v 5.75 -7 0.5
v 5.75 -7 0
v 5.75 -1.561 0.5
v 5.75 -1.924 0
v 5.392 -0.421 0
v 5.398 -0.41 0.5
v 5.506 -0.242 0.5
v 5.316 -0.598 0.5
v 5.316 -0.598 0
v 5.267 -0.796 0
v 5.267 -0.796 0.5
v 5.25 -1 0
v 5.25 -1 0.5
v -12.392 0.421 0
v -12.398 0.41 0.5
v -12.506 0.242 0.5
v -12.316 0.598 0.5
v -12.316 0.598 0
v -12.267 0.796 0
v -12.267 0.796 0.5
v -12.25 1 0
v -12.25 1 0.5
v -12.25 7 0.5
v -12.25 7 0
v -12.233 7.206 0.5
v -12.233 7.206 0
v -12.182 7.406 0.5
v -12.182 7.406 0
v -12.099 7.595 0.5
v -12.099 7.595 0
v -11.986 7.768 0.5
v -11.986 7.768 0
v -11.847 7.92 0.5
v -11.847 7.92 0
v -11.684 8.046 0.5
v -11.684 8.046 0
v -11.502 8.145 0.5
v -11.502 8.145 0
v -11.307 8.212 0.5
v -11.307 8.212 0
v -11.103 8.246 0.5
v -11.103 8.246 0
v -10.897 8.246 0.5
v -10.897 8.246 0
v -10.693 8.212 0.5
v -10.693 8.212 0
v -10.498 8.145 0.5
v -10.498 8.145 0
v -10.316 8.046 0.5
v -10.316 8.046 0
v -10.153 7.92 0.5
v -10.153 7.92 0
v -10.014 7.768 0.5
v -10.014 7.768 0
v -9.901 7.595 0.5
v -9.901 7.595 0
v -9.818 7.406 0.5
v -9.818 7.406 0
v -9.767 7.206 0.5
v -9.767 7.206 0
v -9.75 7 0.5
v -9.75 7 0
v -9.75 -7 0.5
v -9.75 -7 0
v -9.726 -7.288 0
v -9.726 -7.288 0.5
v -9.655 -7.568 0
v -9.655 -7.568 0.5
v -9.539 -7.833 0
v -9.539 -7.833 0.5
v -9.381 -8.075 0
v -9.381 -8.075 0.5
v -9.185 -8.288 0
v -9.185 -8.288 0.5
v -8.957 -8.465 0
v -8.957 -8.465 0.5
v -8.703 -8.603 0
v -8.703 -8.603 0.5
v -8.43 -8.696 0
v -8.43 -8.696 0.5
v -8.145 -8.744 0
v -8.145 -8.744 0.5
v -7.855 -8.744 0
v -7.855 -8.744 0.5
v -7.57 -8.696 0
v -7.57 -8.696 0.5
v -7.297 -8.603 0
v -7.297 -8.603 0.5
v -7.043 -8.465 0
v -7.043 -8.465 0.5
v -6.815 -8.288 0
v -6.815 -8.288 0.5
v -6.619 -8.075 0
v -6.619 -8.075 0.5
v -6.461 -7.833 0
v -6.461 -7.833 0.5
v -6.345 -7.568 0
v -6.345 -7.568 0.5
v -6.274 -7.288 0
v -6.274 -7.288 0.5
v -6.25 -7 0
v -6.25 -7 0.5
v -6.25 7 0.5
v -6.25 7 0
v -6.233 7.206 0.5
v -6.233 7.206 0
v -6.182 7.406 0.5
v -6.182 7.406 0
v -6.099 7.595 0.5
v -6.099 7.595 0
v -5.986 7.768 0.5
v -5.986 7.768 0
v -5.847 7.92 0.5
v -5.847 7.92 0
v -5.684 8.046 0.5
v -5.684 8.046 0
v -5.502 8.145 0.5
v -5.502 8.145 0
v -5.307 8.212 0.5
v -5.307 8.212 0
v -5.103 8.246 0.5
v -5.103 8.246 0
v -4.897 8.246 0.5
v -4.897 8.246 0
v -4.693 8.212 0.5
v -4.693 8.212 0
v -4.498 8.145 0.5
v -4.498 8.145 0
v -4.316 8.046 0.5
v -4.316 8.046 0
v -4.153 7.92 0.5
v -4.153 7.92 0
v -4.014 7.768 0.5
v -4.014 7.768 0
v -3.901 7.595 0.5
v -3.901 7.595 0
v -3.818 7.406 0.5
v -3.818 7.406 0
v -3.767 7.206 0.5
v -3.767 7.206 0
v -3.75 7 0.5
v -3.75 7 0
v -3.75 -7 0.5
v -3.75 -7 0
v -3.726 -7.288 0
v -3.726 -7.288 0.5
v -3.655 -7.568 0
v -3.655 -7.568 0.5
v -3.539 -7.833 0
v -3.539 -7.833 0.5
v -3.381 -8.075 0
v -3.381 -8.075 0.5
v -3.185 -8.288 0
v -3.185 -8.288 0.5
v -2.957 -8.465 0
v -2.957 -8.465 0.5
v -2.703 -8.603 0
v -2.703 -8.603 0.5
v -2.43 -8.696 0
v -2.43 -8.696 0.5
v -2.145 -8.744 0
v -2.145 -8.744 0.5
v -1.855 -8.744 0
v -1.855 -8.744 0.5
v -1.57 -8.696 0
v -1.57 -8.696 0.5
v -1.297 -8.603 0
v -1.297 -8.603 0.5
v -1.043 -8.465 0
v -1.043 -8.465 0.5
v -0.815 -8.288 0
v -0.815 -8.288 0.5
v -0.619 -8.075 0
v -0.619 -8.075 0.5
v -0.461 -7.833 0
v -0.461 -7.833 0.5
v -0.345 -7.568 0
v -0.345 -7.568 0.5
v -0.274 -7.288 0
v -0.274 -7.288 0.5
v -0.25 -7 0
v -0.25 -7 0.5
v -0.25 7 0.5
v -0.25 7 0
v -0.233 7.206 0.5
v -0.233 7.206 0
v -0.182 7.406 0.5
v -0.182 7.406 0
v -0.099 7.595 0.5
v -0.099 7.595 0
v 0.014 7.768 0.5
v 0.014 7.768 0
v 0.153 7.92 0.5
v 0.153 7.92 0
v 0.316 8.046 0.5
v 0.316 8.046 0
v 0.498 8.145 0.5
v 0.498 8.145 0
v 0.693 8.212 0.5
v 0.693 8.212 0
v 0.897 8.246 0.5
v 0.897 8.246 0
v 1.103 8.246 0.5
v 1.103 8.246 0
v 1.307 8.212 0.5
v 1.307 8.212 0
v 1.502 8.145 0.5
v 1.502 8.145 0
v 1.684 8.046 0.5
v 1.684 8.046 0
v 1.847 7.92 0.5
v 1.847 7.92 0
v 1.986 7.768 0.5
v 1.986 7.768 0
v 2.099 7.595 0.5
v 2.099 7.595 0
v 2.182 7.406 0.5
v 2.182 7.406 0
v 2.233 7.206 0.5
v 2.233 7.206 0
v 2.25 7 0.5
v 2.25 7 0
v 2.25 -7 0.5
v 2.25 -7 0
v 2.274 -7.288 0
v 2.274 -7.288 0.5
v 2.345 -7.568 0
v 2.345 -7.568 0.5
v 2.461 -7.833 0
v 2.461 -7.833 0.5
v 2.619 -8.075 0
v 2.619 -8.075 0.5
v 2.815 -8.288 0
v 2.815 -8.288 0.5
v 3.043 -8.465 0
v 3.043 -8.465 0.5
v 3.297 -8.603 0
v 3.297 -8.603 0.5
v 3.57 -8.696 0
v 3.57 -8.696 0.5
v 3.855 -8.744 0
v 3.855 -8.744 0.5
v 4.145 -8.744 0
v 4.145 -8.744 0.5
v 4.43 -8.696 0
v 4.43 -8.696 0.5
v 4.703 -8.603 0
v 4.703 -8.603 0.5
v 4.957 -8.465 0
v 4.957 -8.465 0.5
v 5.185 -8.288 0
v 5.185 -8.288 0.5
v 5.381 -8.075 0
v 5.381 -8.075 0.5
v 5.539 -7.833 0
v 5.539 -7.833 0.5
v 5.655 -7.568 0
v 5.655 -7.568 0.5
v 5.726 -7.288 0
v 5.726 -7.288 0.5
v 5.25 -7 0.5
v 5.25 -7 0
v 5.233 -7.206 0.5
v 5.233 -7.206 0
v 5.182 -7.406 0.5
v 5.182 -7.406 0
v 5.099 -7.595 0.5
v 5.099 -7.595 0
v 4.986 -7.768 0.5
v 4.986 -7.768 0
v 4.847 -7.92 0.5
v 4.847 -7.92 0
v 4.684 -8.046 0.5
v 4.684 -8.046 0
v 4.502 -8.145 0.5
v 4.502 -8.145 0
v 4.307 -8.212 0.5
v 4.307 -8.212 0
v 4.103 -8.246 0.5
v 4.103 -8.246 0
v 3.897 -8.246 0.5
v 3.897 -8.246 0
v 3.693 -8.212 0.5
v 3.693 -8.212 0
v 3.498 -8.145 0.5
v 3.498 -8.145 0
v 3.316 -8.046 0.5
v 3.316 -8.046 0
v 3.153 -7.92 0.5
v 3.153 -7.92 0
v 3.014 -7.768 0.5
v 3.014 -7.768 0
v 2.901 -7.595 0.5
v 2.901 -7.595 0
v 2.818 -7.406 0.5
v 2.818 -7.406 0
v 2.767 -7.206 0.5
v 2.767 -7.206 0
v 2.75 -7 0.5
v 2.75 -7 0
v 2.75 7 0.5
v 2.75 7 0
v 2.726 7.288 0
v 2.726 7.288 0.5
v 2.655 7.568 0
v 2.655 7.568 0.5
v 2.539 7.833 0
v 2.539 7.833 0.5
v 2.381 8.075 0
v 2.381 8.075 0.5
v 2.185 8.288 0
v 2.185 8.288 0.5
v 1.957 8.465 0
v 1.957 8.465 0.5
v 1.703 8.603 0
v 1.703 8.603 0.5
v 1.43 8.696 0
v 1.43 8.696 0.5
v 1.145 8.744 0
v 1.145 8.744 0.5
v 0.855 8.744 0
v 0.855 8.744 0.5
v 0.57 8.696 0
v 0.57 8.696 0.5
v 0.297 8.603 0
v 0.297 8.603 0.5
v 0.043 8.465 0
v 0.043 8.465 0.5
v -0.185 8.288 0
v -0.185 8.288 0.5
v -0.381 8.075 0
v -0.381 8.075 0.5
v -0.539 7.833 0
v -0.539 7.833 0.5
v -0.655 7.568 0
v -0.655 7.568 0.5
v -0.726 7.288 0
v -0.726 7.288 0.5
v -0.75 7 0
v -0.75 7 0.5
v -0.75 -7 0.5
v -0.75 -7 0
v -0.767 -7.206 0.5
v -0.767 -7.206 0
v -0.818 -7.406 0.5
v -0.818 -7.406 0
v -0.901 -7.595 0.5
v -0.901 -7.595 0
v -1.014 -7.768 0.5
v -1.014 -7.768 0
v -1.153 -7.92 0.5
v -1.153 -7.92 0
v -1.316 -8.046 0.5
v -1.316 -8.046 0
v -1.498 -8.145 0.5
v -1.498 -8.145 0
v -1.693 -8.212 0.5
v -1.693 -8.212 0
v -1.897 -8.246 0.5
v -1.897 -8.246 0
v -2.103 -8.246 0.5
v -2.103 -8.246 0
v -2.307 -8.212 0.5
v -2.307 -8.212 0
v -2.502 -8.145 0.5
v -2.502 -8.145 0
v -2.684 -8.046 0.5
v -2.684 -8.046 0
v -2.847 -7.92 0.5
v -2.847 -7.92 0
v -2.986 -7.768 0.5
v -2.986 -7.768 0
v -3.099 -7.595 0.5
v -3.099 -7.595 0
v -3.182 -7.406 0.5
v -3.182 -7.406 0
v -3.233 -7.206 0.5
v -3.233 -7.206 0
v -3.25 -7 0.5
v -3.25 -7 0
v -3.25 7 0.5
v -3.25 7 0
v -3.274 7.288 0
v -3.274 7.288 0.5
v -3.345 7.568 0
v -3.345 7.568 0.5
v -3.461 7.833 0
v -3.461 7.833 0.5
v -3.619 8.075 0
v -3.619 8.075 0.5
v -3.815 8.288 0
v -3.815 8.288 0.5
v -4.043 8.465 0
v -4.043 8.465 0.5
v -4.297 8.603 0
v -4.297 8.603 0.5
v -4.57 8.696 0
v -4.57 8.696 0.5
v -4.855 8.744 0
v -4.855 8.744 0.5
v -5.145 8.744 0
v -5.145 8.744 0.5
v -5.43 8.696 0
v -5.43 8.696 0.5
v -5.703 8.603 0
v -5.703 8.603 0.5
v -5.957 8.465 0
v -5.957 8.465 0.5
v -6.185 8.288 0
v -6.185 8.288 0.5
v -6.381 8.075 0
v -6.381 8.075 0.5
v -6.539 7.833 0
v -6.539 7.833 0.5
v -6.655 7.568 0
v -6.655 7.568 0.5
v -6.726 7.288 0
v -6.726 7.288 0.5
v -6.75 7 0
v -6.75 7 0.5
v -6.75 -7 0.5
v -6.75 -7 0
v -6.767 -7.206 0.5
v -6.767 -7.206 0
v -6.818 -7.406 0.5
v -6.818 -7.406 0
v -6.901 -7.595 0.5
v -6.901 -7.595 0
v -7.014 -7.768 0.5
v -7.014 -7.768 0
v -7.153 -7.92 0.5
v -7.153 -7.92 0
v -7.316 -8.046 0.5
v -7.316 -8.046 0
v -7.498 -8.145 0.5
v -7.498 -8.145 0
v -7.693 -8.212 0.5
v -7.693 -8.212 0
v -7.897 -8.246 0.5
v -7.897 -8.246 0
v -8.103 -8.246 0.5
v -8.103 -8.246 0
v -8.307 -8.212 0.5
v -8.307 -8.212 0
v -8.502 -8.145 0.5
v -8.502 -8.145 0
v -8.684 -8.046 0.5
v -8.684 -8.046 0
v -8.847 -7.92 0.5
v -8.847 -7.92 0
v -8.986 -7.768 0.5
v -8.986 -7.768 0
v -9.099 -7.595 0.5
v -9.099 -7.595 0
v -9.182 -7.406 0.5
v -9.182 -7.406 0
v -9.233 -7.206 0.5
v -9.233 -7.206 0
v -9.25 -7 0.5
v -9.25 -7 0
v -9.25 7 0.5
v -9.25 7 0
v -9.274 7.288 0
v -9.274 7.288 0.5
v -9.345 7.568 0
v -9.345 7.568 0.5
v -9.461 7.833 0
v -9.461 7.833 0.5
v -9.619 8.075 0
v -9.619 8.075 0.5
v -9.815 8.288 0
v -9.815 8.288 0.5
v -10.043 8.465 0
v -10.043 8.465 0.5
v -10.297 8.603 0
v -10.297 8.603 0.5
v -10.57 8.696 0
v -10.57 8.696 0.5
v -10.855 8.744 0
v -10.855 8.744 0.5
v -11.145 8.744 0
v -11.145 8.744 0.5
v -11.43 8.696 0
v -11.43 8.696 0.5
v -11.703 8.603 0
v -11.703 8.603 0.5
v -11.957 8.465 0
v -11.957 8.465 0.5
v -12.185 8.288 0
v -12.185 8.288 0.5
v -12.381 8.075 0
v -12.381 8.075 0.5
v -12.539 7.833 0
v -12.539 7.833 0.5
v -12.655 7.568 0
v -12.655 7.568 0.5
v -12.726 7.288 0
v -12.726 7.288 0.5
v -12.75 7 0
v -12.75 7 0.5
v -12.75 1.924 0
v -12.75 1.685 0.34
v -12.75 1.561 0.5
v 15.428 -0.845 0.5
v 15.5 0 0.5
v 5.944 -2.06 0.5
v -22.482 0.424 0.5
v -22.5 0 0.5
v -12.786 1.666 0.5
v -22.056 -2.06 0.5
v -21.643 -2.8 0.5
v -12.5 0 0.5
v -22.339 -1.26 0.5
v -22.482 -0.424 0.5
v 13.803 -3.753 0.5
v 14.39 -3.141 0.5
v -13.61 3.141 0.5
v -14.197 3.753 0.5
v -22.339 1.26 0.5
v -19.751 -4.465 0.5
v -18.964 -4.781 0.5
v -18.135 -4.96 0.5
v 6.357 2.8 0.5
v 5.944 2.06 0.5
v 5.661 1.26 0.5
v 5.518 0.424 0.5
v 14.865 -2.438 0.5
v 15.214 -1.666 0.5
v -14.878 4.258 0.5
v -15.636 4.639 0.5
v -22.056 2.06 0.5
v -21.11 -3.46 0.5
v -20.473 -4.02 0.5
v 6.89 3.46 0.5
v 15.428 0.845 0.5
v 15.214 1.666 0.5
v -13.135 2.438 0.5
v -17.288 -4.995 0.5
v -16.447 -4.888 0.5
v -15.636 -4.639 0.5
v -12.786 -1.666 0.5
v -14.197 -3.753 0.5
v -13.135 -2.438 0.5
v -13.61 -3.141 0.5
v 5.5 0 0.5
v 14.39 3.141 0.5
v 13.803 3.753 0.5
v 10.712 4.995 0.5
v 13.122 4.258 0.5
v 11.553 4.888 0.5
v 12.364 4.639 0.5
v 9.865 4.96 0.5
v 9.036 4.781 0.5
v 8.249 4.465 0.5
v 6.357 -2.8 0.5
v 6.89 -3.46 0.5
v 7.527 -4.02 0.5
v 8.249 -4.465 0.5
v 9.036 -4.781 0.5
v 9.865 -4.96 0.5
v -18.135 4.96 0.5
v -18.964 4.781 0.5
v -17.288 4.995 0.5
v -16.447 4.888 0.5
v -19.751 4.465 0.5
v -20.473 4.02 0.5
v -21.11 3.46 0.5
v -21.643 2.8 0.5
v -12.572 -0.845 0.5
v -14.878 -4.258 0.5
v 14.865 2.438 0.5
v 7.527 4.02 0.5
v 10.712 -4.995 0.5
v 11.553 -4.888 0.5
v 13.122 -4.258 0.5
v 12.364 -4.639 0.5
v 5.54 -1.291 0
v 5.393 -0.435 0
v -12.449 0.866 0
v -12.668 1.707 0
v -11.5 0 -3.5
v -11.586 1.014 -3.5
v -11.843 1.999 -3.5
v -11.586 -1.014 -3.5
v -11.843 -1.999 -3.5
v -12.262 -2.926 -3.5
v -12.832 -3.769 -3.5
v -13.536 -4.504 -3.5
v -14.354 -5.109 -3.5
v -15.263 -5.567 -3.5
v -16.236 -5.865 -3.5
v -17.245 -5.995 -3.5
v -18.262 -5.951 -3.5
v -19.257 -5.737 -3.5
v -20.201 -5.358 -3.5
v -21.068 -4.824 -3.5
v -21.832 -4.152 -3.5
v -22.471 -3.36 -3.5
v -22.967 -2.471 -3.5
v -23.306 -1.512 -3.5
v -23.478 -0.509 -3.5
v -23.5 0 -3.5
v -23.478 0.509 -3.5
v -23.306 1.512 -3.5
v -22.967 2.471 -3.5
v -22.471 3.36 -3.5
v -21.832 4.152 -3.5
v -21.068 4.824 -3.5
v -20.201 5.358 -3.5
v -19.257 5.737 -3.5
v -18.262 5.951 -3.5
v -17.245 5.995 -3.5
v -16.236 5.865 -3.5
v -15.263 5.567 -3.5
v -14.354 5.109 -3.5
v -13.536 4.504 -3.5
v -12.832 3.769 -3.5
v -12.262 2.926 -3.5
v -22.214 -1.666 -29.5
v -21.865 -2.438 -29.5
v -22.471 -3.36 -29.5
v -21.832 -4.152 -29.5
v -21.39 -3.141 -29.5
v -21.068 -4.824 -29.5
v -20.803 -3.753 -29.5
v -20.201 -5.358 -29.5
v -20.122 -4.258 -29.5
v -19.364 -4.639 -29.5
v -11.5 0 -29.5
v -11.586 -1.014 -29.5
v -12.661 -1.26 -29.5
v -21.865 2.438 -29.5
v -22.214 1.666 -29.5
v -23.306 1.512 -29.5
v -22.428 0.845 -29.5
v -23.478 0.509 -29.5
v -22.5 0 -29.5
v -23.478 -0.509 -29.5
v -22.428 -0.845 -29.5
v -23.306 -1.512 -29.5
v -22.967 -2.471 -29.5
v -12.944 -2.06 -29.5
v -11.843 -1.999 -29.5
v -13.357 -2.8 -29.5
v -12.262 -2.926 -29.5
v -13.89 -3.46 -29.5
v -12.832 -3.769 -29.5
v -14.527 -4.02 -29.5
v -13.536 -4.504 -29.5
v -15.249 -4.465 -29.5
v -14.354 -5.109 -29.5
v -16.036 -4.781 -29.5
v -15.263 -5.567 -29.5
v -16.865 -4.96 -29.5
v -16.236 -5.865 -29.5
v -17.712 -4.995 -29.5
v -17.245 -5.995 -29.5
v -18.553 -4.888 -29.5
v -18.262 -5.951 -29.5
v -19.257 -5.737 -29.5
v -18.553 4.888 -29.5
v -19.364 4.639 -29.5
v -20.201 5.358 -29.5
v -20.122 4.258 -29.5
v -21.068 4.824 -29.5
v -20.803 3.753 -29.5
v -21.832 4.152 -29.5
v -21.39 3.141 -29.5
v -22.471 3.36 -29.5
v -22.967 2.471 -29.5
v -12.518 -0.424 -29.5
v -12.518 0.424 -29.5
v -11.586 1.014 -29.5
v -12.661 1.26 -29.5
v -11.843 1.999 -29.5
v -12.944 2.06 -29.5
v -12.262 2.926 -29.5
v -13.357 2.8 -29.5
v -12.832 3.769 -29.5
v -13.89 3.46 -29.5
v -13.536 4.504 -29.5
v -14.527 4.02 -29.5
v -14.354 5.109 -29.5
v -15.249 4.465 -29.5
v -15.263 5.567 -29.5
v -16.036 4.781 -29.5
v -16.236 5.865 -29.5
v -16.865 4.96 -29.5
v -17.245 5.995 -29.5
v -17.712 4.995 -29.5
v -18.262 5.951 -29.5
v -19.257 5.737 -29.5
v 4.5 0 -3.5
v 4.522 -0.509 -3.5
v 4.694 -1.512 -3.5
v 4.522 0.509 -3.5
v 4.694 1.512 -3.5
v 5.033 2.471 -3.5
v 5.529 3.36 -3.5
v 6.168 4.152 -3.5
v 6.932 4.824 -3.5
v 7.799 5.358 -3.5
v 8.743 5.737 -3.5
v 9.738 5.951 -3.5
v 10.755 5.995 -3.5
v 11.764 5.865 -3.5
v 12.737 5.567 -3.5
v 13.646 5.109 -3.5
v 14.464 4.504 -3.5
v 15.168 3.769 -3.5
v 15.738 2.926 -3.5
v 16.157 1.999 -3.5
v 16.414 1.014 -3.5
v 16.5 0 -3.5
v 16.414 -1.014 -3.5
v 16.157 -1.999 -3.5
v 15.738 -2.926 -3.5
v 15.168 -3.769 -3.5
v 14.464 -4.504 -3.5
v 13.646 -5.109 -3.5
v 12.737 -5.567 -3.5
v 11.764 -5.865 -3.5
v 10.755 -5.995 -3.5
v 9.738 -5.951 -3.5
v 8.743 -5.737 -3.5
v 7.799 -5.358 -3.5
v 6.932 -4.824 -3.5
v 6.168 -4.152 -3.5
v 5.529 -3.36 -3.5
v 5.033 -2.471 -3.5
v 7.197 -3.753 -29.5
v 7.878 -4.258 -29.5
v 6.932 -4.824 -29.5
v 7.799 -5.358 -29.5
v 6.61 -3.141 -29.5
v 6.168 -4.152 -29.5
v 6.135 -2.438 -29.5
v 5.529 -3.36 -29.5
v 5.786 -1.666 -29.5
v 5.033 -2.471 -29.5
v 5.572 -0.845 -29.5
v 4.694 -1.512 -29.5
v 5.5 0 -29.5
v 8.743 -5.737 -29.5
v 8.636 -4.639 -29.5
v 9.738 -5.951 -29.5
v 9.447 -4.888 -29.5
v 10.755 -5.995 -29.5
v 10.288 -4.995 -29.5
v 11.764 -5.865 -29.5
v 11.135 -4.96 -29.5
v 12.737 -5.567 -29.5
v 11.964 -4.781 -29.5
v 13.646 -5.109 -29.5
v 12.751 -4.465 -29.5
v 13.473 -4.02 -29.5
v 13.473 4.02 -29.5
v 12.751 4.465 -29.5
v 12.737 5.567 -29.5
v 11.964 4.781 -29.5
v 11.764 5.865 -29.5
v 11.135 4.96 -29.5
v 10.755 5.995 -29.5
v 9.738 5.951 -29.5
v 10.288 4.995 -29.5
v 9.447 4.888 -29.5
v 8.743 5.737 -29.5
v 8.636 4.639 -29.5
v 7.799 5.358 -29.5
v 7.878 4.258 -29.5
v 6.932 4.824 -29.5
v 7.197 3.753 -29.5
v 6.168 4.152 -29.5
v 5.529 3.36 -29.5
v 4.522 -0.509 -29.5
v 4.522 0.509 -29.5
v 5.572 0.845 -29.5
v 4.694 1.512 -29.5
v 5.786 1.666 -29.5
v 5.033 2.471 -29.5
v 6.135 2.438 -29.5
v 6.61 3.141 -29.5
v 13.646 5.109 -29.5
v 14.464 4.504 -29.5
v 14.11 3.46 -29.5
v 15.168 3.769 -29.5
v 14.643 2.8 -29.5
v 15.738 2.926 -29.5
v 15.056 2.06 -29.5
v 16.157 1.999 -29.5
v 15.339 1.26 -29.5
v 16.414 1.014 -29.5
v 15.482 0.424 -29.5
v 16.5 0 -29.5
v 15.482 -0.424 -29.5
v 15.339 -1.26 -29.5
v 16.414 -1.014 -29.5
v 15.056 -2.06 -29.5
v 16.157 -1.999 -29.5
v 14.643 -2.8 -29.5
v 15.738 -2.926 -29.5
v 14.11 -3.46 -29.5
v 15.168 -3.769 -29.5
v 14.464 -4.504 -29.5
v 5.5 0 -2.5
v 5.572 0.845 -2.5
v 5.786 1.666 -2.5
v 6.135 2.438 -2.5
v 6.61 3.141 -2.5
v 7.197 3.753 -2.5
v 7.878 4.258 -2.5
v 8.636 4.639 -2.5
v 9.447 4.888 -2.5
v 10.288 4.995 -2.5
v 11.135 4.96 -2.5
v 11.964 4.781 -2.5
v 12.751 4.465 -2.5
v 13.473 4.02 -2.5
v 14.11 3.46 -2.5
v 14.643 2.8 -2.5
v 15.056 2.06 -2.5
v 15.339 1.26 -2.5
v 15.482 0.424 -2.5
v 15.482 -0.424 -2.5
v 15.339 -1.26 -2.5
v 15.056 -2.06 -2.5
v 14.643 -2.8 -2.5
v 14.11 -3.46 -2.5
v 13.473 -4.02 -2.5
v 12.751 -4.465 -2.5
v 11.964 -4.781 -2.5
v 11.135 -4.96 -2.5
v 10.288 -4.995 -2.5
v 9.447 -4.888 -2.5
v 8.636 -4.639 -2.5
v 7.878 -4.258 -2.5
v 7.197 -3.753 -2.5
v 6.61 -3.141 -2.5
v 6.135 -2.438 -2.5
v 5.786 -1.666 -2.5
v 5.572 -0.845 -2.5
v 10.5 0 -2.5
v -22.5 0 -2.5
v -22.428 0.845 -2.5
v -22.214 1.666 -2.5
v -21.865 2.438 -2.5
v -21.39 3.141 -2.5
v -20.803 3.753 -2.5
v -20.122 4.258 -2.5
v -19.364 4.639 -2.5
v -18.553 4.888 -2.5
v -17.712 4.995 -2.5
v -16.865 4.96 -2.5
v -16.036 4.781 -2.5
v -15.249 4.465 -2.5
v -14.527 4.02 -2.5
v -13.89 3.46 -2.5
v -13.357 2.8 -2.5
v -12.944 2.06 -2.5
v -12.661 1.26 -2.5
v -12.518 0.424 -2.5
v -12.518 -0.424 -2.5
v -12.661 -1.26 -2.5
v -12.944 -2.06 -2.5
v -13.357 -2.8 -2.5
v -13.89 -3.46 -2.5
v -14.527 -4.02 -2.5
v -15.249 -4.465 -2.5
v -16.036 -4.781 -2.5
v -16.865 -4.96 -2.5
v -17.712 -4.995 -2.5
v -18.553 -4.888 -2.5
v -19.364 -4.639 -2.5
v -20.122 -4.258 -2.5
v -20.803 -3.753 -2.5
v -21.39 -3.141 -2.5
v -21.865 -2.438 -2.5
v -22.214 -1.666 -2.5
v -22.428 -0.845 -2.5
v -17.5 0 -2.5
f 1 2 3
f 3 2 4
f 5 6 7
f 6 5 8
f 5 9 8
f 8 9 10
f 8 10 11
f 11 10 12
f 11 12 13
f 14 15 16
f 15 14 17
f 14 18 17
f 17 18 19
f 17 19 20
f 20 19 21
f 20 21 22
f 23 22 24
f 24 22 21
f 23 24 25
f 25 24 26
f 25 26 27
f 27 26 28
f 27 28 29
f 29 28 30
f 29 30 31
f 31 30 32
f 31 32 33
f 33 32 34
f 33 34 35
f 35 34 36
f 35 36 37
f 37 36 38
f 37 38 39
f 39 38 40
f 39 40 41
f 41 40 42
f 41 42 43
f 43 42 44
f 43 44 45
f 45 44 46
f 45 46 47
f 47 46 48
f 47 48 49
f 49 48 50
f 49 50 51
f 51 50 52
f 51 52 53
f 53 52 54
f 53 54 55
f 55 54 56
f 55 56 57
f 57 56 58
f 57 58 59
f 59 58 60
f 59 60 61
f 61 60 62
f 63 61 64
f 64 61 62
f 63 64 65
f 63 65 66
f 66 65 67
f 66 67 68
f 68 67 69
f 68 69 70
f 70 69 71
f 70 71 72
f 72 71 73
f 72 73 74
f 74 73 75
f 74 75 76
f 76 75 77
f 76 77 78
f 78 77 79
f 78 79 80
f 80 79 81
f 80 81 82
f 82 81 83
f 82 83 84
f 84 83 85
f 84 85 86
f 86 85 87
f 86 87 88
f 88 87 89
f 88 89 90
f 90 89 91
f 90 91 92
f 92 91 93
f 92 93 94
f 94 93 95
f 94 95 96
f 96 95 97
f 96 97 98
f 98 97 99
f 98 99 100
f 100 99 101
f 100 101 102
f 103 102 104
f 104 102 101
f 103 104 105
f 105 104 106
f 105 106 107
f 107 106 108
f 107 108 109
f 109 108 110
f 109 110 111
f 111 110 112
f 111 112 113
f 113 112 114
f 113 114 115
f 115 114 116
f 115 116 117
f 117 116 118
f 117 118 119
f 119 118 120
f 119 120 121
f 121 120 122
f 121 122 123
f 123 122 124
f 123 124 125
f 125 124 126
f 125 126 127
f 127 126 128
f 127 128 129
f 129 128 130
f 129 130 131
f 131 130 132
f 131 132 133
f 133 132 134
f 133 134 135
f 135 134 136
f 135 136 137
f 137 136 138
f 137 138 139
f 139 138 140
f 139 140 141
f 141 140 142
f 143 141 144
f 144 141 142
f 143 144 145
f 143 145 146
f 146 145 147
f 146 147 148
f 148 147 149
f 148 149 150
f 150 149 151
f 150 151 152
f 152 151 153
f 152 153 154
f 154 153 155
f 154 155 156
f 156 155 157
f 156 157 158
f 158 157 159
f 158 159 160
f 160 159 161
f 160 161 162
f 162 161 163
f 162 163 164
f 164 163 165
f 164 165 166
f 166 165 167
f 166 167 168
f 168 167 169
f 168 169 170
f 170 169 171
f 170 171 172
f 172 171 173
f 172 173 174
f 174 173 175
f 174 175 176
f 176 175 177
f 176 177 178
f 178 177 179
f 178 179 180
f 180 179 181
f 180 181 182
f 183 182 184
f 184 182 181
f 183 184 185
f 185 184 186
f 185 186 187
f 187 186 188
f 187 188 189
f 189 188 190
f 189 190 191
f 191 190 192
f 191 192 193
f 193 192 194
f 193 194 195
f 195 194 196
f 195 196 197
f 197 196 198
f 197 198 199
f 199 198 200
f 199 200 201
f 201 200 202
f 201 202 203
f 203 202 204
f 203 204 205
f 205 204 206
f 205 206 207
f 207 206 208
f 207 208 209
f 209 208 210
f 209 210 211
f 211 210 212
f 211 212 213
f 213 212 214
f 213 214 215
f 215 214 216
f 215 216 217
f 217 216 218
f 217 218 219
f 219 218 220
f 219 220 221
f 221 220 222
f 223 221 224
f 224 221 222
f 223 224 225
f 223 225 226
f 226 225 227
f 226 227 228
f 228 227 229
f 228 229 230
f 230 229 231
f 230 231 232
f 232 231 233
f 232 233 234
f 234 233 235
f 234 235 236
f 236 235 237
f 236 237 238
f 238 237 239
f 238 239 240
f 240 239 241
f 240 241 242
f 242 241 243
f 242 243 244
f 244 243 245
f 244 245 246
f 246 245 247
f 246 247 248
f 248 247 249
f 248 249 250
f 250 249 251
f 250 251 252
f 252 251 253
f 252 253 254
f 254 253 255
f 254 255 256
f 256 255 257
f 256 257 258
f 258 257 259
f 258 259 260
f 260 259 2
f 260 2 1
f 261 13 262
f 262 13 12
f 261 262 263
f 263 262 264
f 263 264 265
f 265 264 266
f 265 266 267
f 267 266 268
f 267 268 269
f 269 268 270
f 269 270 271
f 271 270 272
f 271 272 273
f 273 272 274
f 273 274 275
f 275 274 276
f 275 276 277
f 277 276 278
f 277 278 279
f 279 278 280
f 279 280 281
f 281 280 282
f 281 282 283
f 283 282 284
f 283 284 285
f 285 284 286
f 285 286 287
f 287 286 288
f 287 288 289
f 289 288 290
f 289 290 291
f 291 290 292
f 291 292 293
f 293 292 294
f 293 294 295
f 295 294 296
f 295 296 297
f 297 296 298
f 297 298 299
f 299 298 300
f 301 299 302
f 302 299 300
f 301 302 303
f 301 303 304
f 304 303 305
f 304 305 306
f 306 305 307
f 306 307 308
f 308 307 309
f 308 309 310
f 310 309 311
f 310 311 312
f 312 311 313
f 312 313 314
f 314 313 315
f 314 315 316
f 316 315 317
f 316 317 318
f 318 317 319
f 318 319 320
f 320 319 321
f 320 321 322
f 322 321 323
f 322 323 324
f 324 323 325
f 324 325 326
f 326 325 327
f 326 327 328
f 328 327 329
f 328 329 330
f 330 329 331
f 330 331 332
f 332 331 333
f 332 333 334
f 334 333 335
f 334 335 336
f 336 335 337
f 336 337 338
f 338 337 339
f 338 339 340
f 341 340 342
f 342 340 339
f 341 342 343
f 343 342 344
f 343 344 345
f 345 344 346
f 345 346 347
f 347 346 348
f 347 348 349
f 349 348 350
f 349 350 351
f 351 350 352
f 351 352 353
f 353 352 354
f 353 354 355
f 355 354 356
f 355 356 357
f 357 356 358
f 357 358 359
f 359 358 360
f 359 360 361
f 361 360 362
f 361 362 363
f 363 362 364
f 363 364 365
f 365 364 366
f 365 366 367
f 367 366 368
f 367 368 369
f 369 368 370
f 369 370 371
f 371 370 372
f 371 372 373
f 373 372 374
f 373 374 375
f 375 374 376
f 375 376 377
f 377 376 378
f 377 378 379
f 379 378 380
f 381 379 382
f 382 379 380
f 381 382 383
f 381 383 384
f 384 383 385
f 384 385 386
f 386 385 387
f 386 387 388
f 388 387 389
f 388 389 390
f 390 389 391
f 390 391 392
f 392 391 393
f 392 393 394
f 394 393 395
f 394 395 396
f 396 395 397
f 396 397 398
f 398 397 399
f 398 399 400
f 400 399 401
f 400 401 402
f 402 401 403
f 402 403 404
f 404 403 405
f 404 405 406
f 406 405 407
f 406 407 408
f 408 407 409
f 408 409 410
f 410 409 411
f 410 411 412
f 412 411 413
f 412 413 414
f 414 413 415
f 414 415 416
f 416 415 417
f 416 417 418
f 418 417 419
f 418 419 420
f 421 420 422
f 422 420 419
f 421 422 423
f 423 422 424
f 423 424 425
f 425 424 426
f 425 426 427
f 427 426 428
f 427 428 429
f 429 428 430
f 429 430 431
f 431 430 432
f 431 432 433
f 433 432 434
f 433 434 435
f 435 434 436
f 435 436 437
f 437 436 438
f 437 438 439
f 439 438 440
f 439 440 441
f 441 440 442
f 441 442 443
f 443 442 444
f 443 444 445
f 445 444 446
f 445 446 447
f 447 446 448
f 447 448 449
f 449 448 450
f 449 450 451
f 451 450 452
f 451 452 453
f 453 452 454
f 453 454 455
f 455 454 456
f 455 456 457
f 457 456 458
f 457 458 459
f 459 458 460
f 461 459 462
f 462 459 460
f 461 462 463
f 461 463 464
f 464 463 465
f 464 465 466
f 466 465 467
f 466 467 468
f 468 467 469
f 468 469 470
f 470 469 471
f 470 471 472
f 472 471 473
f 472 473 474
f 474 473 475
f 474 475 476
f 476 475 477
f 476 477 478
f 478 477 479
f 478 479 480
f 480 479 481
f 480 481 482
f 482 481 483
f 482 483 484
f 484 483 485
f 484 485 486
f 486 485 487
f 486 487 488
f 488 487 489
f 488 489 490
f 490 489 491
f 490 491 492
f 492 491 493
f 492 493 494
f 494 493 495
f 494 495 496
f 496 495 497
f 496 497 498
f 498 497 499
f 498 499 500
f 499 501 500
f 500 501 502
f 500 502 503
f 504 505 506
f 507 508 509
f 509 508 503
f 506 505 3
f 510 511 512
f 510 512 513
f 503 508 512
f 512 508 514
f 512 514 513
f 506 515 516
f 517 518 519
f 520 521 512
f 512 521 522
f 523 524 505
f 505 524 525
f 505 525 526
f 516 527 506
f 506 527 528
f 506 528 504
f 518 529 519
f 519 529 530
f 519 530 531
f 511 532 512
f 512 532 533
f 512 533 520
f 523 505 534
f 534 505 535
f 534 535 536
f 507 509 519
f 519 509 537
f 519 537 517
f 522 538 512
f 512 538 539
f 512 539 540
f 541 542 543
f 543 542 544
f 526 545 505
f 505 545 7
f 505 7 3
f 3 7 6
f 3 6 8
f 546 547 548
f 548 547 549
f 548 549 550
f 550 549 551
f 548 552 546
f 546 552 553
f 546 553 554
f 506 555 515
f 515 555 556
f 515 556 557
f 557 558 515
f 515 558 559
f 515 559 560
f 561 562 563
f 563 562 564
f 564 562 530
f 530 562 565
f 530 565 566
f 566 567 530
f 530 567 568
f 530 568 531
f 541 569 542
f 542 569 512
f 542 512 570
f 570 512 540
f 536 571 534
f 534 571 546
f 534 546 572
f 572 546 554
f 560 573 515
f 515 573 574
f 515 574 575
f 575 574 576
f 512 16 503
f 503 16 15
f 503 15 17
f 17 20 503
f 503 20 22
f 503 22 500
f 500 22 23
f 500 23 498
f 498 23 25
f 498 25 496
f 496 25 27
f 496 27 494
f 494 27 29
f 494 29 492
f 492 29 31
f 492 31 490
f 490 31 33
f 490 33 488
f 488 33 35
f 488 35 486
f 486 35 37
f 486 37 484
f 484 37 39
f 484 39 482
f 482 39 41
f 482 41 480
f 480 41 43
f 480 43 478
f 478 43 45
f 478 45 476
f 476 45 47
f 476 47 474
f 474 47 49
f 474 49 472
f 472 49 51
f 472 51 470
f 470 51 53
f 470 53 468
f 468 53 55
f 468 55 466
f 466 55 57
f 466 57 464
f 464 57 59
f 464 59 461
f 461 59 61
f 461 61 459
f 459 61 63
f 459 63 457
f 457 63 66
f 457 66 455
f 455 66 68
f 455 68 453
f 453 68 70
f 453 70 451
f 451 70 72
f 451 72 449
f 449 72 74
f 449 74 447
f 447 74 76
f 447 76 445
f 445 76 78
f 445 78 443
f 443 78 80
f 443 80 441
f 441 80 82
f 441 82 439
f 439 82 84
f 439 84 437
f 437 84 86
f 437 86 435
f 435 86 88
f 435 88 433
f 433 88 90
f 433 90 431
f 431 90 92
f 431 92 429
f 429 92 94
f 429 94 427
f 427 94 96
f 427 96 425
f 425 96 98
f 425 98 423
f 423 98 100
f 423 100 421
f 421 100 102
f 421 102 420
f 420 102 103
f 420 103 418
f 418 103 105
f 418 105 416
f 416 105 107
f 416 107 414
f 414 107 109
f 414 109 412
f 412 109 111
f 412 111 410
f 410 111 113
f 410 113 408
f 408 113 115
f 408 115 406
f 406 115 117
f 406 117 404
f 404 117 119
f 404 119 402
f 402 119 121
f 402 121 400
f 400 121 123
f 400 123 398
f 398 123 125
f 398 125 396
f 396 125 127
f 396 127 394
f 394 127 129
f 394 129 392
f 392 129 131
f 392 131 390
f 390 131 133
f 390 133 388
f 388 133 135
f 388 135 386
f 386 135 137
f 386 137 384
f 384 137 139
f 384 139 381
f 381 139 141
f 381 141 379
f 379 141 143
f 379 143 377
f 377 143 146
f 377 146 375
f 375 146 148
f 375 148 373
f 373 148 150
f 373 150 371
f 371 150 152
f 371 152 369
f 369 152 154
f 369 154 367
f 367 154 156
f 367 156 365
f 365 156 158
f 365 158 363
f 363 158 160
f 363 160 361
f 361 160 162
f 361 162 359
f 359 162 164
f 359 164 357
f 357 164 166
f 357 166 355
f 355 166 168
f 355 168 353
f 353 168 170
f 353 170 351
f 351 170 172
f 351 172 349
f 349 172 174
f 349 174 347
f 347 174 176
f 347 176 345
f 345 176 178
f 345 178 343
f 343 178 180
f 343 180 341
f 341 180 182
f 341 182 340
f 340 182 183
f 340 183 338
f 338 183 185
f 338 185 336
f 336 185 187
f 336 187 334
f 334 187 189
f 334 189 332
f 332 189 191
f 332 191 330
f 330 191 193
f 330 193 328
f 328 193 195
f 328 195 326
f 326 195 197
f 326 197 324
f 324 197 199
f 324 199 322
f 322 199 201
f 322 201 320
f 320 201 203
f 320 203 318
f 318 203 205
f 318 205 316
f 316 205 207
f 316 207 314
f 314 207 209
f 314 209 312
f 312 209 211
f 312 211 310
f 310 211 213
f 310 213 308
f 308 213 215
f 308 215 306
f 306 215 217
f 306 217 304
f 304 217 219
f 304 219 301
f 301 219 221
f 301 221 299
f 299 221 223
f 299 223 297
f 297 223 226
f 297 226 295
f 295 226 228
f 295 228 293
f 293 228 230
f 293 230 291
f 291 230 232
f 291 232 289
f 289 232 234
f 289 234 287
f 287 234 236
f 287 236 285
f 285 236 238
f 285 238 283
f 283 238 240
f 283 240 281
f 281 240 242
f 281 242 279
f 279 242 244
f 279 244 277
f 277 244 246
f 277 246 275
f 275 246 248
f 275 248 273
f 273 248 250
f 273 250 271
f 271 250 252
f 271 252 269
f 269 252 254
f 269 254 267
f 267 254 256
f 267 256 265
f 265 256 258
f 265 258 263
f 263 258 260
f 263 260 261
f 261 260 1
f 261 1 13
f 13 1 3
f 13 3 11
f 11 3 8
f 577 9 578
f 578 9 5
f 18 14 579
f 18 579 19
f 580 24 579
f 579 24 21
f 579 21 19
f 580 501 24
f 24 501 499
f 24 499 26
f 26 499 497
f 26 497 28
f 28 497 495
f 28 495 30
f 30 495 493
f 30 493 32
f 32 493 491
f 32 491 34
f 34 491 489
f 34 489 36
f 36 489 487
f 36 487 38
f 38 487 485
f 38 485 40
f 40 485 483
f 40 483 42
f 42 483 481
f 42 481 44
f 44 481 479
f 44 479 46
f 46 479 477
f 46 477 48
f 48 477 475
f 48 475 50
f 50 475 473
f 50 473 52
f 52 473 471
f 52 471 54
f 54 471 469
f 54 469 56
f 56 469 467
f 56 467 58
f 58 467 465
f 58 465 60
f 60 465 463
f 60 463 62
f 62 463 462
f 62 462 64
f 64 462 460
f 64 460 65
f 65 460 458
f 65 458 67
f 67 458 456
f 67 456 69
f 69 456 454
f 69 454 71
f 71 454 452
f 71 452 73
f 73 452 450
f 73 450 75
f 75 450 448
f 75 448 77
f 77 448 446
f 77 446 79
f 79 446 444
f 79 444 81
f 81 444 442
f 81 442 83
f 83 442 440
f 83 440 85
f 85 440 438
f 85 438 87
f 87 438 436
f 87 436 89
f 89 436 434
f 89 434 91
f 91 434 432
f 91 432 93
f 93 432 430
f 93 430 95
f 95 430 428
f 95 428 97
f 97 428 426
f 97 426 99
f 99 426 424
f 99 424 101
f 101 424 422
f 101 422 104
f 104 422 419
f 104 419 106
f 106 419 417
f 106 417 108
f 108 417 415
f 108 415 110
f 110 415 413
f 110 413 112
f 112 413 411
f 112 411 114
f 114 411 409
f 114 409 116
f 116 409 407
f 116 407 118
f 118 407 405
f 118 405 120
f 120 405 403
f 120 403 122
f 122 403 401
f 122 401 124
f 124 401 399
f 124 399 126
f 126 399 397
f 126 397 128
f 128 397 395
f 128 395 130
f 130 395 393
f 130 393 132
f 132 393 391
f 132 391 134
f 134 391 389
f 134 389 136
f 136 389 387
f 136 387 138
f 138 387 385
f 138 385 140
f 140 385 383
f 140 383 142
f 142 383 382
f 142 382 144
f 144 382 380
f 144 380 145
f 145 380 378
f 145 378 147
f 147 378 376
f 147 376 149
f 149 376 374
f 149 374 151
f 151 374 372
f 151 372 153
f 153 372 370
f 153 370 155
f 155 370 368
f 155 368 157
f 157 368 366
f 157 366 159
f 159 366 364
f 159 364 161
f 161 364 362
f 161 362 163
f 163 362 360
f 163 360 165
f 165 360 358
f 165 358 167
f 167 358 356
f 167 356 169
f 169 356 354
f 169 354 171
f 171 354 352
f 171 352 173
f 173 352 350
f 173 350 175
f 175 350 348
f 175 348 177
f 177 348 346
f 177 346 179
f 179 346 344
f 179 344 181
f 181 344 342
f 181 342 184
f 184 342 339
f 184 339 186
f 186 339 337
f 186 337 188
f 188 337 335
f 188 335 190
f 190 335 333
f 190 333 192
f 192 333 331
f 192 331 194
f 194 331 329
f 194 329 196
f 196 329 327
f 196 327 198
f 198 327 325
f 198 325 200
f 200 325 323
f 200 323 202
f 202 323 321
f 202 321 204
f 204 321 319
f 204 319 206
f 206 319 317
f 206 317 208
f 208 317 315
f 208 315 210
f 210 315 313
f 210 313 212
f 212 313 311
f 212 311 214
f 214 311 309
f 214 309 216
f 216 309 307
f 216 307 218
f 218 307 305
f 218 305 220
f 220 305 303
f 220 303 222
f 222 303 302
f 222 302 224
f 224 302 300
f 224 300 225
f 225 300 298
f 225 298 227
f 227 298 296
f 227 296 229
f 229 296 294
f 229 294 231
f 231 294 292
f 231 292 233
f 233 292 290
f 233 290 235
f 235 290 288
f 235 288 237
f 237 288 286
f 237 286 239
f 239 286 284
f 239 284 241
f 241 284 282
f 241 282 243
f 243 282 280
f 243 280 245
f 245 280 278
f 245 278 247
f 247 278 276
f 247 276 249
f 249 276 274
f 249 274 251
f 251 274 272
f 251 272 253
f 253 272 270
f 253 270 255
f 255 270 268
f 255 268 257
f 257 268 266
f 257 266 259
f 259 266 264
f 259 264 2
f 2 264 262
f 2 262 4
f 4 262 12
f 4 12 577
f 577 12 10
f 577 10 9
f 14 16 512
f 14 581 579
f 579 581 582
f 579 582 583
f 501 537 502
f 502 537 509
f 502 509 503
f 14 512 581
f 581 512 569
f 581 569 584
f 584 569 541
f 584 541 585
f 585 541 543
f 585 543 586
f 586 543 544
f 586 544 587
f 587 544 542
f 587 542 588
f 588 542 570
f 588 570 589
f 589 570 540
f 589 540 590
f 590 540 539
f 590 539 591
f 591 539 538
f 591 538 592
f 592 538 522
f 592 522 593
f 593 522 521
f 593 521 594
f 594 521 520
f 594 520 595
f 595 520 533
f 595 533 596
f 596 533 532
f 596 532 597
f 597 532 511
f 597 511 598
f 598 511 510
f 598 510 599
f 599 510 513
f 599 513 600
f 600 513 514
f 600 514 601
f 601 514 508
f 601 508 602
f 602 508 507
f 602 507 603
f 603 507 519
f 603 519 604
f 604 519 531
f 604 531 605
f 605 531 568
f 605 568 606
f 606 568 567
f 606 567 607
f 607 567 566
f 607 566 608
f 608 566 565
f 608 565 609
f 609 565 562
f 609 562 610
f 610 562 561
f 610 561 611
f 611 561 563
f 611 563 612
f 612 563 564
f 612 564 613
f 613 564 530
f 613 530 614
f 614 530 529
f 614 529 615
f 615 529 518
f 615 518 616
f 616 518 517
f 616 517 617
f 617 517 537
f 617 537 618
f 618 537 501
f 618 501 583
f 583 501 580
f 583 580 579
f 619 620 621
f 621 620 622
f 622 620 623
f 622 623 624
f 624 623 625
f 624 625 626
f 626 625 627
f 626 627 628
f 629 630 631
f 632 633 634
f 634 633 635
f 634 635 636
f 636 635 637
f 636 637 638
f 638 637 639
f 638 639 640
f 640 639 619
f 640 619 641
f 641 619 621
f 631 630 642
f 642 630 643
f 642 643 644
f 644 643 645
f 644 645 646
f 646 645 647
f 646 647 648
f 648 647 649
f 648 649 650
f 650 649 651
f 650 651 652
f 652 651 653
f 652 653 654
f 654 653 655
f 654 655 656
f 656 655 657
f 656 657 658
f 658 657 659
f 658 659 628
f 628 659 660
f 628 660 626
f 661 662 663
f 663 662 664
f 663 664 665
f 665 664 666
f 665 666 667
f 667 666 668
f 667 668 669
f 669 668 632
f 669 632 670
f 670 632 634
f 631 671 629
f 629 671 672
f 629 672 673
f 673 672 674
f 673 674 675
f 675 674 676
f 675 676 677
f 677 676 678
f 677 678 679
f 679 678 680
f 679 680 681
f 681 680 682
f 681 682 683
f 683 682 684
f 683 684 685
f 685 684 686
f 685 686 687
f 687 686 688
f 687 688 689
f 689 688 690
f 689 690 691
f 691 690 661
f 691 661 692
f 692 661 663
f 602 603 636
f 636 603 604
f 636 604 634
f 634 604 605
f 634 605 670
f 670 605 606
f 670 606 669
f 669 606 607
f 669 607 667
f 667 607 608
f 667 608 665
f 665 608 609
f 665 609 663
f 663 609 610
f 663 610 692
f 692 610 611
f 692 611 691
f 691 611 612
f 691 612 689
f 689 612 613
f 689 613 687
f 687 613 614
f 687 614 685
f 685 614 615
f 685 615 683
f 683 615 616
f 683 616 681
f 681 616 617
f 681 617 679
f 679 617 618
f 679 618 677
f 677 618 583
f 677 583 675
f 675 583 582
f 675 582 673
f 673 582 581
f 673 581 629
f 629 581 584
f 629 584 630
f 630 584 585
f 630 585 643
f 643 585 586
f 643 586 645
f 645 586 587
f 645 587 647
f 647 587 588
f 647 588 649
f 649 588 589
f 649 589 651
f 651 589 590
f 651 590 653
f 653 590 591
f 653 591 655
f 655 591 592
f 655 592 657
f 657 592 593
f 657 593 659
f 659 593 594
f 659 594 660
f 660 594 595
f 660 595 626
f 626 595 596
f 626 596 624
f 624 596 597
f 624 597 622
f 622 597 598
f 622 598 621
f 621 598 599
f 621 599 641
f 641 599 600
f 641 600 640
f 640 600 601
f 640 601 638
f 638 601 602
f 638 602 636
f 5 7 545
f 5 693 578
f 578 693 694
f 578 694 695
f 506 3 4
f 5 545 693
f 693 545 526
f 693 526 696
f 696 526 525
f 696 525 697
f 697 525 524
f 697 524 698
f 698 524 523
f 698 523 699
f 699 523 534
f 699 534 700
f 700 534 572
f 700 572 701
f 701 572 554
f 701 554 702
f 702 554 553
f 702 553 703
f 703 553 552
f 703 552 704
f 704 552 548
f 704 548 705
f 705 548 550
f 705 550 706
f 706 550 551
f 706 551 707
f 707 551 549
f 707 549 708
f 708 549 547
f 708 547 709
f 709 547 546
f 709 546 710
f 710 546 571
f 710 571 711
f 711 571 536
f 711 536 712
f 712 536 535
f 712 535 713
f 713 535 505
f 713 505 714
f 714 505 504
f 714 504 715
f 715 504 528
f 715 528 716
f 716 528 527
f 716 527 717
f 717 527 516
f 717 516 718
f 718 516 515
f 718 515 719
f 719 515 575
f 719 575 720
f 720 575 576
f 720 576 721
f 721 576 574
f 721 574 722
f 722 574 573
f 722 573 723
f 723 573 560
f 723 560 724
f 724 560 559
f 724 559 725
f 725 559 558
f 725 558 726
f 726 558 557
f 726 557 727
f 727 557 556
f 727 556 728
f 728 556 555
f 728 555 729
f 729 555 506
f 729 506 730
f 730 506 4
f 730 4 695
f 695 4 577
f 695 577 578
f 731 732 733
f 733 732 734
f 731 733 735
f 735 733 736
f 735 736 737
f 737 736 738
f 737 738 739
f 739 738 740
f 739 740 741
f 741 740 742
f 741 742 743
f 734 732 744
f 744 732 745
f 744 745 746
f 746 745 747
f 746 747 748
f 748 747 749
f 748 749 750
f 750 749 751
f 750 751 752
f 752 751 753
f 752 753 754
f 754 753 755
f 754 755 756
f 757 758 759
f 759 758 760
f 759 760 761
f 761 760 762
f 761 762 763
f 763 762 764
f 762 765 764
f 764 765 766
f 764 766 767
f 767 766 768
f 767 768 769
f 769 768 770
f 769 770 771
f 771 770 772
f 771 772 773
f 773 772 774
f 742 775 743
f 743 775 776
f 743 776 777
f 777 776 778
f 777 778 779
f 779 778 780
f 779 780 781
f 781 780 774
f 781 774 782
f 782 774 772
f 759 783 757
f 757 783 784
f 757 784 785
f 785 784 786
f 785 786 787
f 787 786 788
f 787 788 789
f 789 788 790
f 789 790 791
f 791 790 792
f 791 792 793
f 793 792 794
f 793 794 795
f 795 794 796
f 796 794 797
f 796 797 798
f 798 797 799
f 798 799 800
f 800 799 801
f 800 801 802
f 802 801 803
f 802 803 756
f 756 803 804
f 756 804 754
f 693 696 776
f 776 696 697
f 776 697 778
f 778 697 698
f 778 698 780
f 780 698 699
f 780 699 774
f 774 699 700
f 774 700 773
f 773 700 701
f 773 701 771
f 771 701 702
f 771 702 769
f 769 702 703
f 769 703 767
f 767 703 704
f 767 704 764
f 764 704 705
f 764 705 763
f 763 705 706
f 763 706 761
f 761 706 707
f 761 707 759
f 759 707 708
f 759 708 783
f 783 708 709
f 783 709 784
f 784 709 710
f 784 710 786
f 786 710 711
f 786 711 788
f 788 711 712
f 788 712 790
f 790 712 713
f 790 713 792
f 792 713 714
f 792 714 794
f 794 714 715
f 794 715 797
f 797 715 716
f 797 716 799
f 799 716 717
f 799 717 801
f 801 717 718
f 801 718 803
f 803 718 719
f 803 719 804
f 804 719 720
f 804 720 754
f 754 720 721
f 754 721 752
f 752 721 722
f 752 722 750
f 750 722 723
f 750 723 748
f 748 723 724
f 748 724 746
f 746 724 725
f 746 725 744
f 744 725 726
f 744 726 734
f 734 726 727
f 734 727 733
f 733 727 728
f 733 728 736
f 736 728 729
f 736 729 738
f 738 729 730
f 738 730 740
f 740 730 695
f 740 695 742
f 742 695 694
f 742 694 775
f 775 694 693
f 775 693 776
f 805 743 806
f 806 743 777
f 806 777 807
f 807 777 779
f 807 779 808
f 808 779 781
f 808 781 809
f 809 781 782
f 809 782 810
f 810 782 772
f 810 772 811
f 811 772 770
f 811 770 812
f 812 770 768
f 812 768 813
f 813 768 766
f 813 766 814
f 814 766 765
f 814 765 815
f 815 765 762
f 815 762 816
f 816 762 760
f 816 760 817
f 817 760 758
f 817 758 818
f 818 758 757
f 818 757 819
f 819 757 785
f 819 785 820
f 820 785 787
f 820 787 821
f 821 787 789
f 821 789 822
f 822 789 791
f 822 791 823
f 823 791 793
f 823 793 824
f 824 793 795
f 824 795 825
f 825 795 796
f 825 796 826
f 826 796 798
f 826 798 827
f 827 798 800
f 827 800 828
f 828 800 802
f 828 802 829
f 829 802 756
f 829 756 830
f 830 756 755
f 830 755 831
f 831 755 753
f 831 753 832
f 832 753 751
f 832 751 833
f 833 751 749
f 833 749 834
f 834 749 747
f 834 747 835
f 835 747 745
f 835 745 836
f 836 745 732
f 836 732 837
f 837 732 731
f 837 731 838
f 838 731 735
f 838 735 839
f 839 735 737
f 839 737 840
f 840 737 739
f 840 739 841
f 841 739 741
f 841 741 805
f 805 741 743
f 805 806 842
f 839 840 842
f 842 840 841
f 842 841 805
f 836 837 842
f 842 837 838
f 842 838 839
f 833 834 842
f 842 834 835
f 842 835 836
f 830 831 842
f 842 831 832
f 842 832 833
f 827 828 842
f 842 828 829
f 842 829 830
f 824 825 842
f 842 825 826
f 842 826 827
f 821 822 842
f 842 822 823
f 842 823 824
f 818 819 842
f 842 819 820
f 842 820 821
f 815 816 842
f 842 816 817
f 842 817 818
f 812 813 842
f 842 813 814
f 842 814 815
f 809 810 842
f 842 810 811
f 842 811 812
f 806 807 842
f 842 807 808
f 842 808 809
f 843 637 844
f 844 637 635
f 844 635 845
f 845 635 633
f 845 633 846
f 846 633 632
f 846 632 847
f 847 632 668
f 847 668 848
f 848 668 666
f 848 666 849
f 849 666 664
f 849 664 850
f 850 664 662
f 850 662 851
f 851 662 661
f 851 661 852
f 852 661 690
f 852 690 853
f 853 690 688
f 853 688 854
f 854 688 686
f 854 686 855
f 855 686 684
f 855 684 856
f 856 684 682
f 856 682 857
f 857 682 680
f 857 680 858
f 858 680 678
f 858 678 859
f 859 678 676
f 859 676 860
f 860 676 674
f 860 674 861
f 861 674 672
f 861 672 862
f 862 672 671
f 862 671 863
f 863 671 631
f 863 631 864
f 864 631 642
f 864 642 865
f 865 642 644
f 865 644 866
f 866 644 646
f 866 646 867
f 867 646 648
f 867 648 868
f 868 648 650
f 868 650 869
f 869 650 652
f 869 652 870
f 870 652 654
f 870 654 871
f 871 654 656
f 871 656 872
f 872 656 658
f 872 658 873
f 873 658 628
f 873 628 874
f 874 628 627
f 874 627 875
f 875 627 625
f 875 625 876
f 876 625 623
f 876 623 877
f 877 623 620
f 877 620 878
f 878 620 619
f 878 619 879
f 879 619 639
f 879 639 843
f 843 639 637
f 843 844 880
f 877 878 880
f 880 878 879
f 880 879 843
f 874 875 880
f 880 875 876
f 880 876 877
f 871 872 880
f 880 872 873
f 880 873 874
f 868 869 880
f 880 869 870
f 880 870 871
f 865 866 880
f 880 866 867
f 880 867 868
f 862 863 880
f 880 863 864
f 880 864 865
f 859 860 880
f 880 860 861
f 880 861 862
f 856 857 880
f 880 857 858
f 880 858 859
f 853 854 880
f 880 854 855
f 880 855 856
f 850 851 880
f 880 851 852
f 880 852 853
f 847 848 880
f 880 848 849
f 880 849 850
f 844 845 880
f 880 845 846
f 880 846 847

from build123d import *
from build123d.topology import SkipClean

# Parameters (mm, degrees)
BOSS_EXTRUDE1_DEPTH = 0.5
SKETCH5_R           = 5
CUT_EXTRUDE1_DEPTH  = 27


with BuildPart() as part:
    # Sketch2 → Boss-Extrude1 (new body)
    with BuildSketch(Plane.XY):
        with BuildLine():
            Line((-17.5, -0.25), (-13.5, -0.25))
            ThreePointArc((-13.5, -0.25), (-12.616116524, 0.116116524), (-12.25, 1))
            Line((-12.25, 1), (-12.25, 7))
            ThreePointArc((-12.25, 7), (-11, 8.25), (-9.75, 7))
            Line((-9.75, 7), (-9.75, 0))
            Line((-9.75, 0), (-9.75, -7))
            ThreePointArc((-9.75, -7), (-8, -8.75), (-6.25, -7))
            Line((-6.25, -7), (-6.25, 0))
            Line((-6.25, 0), (-6.25, 7))
            ThreePointArc((-6.25, 7), (-5, 8.25), (-3.75, 7))
            Line((-3.75, 7), (-3.75, 0))
            Line((-3.75, 0), (-3.75, -7))
            ThreePointArc((-3.75, -7), (-2, -8.75), (-0.25, -7))
            Line((-0.25, -7), (-0.25, 0))
            Line((-0.25, 0), (-0.25, 7))
            ThreePointArc((-0.25, 7), (1, 8.25), (2.25, 7))
            Line((2.25, 7), (2.25, 0))
            Line((2.25, 0), (2.25, -7))
            ThreePointArc((2.25, -7), (4, -8.75), (5.75, -7))
            Line((5.75, -7), (5.75, -1))
            ThreePointArc((5.75, -1), (5.969669914, -0.469669914), (6.5, -0.25))
            Line((6.5, -0.25), (10.5, -0.25))
            ThreePointArc((10.5, -0.25), (10.75, 0), (10.5, 0.25))
            Line((10.5, 0.25), (6.5, 0.25))
            ThreePointArc((6.5, 0.25), (5.616116524, -0.116116524), (5.25, -1))
            Line((5.25, -1), (5.25, -7))
            ThreePointArc((5.25, -7), (4, -8.25), (2.75, -7))
            Line((2.75, -7), (2.75, 0))
            Line((2.75, 0), (2.75, 7))
            ThreePointArc((2.75, 7), (1, 8.75), (-0.75, 7))
            Line((-0.75, 7), (-0.75, 0))
            Line((-0.75, 0), (-0.75, -7))
            ThreePointArc((-0.75, -7), (-2, -8.25), (-3.25, -7))
            Line((-3.25, -7), (-3.25, 0))
            Line((-3.25, 0), (-3.25, 7))
            ThreePointArc((-3.25, 7), (-5, 8.75), (-6.75, 7))
            Line((-6.75, 7), (-6.75, 0))
            Line((-6.75, 0), (-6.75, -7))
            ThreePointArc((-6.75, -7), (-8, -8.25), (-9.25, -7))
            Line((-9.25, -7), (-9.25, 0))
            Line((-9.25, 0), (-9.25, 7))
            ThreePointArc((-9.25, 7), (-11, 8.75), (-12.75, 7))
            Line((-12.75, 7), (-12.75, 1))
            ThreePointArc((-12.75, 1), (-12.969669914, 0.469669914), (-13.5, 0.25))
            Line((-13.5, 0.25), (-17.5, 0.25))
            ThreePointArc((-17.5, 0.25), (-17.75, 0), (-17.5, -0.25))
        make_face()
    extrude(amount=BOSS_EXTRUDE1_DEPTH)

    # Sketch3 → Revolve1 (revolve)
    with SkipClean():  # the faces are left unmerged after this step: merging them gives an invalid solid
        with BuildSketch(Plane(origin=(0, 0, 0), x_dir=(-1, 0, 0), z_dir=(0, -1, 0)), mode=Mode.PRIVATE) as revolve1_sk:
            Polygon((17.5, -0.5), (22.5, -0.5), (23.5, 3.5), (23.5, 29.5), (17.5, 29.5), align=None)
        revolve(revolve1_sk.sketch.rotate(Axis((-17.5, 0, 0.5), (0, 0, -1)), 157.945831956), axis=Axis((-17.5, 0, 0.5), (0, 0, -1)))

    # Sketch4 → Revolve2 (revolve)
    with SkipClean():  # the faces are left unmerged after this step: merging them gives an invalid solid
        with BuildSketch(Plane(origin=(0, 0, 0), x_dir=(-1, 0, 0), z_dir=(0, -1, 0)), mode=Mode.PRIVATE) as revolve2_sk:
            Polygon((-10.5, -0.5), (-15.5, -0.5), (-16.5, 3.5), (-16.5, 29.5), (-10.5, 29.5), align=None)
        revolve(revolve2_sk.sketch.rotate(Axis((10.5, 0, 0.5), (0, 0, -1)), 177.22310556), axis=Axis((10.5, 0, 0.5), (0, 0, -1)))

    # Sketch5 → Cut-Extrude1 (cut)
    with SkipClean():  # the faces are left unmerged after this step: merging them gives an invalid solid
        with BuildSketch(Plane(origin=(0, 0, -29.5), x_dir=(-1, 0, 0), z_dir=(0, 0, -1))):
            with Locations((-10.5, 0)):
                Circle(SKETCH5_R)
            with Locations((17.5, 0)):
                Circle(SKETCH5_R)
        extrude(amount=-CUT_EXTRUDE1_DEPTH, mode=Mode.SUBTRACT)


solid = part.part
